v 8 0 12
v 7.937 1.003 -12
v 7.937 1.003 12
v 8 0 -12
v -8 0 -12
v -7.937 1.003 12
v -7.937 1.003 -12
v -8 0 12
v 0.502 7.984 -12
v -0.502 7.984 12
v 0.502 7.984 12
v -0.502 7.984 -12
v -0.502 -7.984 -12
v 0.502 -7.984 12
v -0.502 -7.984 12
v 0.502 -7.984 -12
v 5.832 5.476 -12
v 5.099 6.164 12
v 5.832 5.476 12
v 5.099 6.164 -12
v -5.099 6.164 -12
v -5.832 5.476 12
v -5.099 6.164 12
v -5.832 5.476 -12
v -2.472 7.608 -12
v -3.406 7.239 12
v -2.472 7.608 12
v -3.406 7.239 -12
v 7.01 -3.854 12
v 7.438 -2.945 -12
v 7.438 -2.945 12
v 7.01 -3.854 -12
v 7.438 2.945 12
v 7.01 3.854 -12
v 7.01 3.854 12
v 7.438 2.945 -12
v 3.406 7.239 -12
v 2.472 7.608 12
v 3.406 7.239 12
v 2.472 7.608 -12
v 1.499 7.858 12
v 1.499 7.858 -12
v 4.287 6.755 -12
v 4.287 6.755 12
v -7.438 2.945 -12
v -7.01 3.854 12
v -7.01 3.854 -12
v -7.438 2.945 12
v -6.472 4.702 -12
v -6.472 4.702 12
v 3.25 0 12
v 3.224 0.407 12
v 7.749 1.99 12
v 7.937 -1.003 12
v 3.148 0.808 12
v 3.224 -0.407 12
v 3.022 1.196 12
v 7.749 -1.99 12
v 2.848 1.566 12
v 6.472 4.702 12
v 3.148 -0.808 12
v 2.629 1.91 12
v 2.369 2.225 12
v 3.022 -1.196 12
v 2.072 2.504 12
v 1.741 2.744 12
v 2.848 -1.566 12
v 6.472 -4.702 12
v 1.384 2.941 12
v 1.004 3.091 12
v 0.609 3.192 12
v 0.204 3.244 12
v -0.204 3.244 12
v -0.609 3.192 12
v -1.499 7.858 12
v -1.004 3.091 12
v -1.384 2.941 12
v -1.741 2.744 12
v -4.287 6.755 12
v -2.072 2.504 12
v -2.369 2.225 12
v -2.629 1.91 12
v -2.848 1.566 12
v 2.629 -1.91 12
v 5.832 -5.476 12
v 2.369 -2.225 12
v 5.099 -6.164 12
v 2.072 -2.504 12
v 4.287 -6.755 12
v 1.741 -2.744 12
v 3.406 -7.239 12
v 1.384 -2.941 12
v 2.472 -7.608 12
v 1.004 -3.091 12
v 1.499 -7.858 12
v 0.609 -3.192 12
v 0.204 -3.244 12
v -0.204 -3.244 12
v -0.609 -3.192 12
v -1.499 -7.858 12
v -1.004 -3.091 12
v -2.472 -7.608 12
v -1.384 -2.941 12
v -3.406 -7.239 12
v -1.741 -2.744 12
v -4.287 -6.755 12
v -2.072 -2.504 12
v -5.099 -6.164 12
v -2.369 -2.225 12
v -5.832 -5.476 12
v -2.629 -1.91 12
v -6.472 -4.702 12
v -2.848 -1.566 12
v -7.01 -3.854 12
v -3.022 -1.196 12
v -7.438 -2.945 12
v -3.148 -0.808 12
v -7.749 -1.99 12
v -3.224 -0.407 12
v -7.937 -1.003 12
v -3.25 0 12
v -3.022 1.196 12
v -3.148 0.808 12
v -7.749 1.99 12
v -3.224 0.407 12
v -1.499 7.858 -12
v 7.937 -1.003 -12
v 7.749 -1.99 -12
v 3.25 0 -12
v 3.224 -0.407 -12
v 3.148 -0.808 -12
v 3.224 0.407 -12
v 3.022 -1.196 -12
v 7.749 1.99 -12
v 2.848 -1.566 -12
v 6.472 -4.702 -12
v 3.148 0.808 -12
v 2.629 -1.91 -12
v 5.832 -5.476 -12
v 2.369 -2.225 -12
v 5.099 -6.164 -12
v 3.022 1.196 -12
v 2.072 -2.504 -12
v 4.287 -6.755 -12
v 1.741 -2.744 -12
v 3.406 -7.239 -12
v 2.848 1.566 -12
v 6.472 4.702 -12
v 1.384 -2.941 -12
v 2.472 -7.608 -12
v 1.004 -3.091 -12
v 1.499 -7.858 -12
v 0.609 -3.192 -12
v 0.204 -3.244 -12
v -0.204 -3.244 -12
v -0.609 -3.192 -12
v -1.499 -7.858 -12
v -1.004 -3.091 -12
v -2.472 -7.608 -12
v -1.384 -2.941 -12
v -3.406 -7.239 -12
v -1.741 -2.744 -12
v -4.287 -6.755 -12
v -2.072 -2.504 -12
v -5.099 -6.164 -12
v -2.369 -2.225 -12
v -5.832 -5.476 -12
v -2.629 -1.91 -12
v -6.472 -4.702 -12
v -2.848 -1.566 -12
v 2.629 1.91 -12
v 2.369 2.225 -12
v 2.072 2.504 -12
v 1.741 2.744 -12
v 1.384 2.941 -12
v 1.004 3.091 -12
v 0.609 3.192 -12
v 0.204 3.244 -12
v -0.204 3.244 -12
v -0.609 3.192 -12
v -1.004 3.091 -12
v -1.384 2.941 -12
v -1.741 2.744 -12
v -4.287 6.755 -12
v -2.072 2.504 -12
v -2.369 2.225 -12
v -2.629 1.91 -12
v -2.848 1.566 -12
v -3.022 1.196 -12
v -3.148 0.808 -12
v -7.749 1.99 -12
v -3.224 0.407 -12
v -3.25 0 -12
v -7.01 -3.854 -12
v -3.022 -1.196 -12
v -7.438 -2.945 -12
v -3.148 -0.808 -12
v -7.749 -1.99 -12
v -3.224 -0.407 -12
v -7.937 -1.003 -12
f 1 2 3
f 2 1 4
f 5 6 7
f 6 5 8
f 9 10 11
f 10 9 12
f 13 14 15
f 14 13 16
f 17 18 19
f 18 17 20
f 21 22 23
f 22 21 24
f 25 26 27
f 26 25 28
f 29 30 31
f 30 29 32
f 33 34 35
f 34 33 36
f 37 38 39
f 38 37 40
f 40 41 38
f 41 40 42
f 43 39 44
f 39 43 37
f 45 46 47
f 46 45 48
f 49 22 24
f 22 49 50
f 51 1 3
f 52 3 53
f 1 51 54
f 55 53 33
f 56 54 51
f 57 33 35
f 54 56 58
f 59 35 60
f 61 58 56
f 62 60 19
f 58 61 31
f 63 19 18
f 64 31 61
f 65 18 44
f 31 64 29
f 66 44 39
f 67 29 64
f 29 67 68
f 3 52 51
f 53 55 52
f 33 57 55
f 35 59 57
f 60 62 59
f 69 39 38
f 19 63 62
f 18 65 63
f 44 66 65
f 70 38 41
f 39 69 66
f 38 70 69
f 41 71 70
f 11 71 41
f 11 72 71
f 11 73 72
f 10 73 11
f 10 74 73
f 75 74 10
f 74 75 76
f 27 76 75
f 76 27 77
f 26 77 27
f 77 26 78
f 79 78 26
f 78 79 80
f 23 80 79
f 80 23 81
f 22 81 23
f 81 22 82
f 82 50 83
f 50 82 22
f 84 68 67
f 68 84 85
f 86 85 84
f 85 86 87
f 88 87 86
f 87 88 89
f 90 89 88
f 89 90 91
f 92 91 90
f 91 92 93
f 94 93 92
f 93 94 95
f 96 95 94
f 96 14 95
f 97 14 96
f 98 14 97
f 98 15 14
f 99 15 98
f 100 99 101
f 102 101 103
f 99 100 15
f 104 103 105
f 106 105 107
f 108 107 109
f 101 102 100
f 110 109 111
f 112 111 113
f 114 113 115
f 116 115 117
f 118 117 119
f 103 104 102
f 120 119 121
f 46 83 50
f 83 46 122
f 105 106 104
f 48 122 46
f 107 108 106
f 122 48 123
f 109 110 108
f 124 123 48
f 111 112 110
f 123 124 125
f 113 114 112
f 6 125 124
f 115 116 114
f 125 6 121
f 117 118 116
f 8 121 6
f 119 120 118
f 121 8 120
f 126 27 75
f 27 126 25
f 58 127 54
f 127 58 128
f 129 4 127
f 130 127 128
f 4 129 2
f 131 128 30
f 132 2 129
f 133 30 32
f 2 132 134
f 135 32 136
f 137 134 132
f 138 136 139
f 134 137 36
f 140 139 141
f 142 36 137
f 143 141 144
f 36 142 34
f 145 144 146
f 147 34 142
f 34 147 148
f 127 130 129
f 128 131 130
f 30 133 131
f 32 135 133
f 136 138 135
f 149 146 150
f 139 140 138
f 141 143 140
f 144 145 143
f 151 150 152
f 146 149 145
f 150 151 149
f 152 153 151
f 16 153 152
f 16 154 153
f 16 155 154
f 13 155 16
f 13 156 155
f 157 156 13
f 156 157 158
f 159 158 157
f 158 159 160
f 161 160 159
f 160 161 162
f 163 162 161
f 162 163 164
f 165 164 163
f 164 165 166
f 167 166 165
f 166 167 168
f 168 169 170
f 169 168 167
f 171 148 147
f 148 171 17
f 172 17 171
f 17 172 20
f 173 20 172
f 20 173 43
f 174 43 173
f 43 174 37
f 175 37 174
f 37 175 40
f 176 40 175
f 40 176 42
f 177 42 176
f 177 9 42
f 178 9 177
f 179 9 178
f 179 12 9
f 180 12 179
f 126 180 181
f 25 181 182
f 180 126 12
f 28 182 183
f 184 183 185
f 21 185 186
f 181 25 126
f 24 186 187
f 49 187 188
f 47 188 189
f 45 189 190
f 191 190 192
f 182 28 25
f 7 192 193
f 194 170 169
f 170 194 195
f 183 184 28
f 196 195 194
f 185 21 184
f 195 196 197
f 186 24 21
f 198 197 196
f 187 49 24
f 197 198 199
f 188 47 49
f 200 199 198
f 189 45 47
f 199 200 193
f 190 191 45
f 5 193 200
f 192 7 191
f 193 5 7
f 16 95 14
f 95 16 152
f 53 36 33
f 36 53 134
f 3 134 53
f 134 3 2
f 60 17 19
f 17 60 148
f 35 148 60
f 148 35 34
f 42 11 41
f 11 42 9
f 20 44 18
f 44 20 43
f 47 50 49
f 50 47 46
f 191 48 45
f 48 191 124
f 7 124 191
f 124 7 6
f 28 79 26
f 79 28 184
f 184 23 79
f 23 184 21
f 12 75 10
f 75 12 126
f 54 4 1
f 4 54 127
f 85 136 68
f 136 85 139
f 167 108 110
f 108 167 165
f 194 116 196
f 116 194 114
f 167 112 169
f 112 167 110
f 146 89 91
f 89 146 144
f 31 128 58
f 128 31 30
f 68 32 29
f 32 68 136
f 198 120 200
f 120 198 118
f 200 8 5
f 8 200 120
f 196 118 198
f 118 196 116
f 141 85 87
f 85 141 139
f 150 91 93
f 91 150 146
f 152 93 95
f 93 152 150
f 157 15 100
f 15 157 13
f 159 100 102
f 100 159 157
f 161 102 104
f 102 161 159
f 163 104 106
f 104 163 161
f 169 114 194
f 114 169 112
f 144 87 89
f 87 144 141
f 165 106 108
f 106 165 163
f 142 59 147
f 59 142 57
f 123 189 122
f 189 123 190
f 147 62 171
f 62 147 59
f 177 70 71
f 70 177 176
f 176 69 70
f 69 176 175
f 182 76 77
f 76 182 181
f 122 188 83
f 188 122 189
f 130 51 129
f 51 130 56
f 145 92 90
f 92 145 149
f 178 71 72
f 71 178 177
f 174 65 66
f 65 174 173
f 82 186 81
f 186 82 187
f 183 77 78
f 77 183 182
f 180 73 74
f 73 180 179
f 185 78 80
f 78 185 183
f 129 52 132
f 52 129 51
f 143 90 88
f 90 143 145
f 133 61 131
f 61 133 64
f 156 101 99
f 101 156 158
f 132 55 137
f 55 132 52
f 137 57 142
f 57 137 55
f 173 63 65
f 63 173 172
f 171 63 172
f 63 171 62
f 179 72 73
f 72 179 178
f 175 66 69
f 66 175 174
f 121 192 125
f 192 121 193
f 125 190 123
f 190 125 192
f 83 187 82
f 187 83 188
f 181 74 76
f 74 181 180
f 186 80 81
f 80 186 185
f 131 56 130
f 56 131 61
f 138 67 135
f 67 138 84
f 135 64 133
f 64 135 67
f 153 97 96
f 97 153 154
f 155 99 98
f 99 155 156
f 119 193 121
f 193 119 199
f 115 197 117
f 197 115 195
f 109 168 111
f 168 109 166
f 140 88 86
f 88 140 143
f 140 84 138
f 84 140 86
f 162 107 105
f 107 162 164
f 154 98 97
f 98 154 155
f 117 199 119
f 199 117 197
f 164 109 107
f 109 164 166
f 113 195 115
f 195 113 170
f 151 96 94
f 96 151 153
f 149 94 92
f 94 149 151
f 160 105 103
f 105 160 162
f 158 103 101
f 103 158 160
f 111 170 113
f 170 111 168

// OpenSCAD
$fn = 50;


difference() {
	union() {
		translate(v = [0, 0, -12.0000000000]) {
			cylinder(h = 24, r = 8.0000000000);
		}
	}
	union() {
		translate(v = [0, 0, -100.0000000000]) {
			cylinder(h = 200, r = 3.2500000000);
		}
	}
}
